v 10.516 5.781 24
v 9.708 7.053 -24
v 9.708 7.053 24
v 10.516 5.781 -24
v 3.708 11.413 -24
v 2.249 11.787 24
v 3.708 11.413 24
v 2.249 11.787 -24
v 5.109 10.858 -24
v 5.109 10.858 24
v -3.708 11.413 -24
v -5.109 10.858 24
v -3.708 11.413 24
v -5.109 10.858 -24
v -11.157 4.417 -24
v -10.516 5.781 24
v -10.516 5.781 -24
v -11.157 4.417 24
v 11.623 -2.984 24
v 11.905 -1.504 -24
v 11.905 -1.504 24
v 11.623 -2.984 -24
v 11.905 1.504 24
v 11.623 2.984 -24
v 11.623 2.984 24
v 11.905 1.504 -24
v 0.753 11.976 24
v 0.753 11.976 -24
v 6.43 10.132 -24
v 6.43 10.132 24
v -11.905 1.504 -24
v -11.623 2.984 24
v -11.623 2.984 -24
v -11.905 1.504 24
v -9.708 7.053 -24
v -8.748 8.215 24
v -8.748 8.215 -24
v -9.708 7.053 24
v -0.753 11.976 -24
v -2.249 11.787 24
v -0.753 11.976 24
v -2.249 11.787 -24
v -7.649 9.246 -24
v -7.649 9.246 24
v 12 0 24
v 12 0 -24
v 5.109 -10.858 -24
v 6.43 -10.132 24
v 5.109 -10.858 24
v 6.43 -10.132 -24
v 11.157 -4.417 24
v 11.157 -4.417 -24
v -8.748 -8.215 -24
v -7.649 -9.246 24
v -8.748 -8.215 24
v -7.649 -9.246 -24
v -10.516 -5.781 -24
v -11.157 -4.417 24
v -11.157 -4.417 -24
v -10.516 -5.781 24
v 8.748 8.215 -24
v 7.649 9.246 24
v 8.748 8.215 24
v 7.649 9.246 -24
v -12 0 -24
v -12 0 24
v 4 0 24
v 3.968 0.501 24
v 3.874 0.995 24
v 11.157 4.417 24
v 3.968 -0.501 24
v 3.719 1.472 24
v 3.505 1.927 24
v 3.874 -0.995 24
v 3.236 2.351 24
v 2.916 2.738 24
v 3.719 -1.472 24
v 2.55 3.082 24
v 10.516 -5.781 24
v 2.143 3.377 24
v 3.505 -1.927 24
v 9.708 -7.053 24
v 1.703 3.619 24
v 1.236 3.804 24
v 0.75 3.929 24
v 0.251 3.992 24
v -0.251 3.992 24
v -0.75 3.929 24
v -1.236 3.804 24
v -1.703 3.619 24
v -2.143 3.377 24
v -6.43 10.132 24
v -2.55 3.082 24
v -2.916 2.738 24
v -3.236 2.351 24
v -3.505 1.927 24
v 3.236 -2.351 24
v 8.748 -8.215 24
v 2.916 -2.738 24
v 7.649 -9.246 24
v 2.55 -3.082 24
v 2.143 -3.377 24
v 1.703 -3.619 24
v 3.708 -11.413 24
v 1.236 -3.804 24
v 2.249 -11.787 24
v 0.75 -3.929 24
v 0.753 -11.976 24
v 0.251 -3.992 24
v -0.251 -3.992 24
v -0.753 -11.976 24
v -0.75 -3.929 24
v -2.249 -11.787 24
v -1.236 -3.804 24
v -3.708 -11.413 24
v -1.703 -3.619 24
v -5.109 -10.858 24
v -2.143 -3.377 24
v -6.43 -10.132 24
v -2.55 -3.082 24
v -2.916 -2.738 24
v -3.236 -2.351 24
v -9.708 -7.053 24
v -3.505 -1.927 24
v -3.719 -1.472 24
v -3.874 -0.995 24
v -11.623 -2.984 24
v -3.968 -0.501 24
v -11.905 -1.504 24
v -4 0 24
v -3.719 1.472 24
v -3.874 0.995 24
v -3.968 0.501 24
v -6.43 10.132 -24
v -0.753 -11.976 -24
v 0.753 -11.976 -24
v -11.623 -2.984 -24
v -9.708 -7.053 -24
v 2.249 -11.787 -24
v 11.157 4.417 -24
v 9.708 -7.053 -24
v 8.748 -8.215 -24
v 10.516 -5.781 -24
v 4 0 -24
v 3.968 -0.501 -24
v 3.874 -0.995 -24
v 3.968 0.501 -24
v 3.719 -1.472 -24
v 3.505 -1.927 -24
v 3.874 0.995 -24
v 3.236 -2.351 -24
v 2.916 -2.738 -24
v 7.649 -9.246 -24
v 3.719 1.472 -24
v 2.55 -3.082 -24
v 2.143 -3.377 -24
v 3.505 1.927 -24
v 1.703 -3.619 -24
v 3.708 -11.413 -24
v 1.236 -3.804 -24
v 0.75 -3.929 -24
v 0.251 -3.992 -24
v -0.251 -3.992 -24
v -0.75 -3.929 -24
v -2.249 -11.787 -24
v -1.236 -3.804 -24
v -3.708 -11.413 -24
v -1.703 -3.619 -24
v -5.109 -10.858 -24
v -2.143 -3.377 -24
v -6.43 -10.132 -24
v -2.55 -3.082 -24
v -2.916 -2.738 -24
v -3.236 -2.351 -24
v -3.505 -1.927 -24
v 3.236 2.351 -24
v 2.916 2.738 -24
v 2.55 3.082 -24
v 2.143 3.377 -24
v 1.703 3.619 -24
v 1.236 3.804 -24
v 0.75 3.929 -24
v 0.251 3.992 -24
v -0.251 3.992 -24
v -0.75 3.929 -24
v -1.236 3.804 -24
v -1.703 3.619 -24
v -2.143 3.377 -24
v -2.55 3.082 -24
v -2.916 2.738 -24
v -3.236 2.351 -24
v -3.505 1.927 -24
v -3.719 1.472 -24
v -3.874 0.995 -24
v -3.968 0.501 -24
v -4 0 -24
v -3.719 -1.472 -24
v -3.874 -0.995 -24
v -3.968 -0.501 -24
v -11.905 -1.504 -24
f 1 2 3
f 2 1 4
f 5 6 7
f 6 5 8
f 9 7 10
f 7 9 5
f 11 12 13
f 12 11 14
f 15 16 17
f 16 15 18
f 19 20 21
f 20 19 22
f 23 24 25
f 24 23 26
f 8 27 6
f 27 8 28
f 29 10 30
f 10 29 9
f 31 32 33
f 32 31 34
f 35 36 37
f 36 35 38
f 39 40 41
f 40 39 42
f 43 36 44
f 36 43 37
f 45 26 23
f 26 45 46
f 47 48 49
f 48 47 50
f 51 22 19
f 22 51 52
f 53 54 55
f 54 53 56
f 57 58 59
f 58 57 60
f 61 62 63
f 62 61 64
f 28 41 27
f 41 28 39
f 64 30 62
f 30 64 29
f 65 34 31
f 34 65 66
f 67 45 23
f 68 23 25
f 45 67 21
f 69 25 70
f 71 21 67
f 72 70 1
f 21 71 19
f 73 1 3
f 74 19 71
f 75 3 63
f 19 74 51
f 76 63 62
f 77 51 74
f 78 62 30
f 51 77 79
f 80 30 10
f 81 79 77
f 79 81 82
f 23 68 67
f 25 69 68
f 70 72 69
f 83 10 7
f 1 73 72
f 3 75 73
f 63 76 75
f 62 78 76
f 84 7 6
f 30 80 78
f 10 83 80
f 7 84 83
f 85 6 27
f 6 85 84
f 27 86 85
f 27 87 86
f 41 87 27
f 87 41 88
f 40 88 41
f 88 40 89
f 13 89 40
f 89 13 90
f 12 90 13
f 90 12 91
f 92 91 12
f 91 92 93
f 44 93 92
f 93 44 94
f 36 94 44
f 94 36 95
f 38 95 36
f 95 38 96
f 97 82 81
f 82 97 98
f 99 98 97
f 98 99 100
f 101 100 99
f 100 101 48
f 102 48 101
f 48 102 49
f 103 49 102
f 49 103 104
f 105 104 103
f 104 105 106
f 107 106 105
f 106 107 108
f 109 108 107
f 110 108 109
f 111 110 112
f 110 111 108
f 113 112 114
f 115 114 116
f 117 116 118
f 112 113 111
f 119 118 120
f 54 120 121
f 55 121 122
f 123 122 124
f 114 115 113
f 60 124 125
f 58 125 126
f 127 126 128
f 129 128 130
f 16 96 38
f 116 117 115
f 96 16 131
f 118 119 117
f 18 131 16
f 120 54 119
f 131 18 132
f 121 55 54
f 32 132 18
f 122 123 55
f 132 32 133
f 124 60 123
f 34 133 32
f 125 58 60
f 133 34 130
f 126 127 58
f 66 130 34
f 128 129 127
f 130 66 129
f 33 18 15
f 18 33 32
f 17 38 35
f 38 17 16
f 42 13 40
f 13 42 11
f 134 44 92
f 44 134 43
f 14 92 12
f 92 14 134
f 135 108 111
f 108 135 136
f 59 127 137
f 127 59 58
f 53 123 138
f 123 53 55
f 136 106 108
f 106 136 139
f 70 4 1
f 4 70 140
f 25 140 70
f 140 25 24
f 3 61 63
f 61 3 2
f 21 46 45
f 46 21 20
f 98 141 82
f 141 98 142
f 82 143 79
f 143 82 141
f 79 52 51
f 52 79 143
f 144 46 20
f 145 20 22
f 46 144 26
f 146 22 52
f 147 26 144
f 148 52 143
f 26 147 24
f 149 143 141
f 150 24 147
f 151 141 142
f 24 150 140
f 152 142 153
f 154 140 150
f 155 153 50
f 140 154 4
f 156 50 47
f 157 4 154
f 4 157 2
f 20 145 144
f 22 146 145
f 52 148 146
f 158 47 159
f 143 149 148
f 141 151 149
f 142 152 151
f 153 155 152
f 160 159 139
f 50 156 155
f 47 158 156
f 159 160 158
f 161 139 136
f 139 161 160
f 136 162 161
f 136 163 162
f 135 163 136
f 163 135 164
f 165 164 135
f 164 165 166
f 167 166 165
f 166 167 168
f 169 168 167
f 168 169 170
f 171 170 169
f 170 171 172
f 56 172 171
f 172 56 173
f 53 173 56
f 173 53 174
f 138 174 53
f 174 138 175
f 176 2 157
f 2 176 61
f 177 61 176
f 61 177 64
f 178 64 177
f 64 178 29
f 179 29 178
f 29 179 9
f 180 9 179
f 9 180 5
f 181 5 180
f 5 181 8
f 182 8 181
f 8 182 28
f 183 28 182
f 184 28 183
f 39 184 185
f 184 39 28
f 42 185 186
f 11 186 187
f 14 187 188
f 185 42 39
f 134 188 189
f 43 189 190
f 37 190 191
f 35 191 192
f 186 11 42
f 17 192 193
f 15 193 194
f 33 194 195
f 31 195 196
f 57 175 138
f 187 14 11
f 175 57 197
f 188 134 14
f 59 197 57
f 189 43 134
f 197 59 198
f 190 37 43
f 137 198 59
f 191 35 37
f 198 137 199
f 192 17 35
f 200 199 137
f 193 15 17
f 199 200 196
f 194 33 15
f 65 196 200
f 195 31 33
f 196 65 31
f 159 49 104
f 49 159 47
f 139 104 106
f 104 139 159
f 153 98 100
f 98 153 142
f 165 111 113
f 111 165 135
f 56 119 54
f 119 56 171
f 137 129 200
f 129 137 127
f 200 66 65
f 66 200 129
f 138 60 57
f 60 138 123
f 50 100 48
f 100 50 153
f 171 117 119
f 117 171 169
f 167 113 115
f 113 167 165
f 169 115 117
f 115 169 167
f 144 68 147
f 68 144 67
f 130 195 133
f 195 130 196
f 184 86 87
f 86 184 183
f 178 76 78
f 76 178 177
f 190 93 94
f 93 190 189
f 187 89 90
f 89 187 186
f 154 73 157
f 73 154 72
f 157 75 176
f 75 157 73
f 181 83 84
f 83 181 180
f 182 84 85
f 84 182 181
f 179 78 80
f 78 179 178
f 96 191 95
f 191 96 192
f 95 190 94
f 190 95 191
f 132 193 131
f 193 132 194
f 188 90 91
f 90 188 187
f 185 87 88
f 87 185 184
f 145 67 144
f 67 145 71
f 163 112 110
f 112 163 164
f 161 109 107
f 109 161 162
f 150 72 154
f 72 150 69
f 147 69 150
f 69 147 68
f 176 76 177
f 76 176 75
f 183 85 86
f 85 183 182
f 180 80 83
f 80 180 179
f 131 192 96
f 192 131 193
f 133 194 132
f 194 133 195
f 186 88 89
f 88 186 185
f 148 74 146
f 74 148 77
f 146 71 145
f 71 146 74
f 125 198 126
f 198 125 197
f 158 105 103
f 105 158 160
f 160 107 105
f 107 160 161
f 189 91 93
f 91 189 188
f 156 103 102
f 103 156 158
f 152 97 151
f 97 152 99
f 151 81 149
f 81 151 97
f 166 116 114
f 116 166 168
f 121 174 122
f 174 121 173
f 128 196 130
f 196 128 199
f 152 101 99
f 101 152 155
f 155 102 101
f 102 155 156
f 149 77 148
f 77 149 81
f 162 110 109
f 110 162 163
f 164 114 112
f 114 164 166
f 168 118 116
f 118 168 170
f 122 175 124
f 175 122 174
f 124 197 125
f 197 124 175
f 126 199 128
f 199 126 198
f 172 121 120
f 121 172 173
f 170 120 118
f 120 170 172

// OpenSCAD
$fn = 50;


difference() {
	union() {
		translate(v = [0, 0, -24.0000000000]) {
			cylinder(h = 48, r = 12.0000000000);
		}
	}
	union() {
		translate(v = [0, 0, -100.0000000000]) {
			cylinder(h = 200, r = 4);
		}
	}
}
